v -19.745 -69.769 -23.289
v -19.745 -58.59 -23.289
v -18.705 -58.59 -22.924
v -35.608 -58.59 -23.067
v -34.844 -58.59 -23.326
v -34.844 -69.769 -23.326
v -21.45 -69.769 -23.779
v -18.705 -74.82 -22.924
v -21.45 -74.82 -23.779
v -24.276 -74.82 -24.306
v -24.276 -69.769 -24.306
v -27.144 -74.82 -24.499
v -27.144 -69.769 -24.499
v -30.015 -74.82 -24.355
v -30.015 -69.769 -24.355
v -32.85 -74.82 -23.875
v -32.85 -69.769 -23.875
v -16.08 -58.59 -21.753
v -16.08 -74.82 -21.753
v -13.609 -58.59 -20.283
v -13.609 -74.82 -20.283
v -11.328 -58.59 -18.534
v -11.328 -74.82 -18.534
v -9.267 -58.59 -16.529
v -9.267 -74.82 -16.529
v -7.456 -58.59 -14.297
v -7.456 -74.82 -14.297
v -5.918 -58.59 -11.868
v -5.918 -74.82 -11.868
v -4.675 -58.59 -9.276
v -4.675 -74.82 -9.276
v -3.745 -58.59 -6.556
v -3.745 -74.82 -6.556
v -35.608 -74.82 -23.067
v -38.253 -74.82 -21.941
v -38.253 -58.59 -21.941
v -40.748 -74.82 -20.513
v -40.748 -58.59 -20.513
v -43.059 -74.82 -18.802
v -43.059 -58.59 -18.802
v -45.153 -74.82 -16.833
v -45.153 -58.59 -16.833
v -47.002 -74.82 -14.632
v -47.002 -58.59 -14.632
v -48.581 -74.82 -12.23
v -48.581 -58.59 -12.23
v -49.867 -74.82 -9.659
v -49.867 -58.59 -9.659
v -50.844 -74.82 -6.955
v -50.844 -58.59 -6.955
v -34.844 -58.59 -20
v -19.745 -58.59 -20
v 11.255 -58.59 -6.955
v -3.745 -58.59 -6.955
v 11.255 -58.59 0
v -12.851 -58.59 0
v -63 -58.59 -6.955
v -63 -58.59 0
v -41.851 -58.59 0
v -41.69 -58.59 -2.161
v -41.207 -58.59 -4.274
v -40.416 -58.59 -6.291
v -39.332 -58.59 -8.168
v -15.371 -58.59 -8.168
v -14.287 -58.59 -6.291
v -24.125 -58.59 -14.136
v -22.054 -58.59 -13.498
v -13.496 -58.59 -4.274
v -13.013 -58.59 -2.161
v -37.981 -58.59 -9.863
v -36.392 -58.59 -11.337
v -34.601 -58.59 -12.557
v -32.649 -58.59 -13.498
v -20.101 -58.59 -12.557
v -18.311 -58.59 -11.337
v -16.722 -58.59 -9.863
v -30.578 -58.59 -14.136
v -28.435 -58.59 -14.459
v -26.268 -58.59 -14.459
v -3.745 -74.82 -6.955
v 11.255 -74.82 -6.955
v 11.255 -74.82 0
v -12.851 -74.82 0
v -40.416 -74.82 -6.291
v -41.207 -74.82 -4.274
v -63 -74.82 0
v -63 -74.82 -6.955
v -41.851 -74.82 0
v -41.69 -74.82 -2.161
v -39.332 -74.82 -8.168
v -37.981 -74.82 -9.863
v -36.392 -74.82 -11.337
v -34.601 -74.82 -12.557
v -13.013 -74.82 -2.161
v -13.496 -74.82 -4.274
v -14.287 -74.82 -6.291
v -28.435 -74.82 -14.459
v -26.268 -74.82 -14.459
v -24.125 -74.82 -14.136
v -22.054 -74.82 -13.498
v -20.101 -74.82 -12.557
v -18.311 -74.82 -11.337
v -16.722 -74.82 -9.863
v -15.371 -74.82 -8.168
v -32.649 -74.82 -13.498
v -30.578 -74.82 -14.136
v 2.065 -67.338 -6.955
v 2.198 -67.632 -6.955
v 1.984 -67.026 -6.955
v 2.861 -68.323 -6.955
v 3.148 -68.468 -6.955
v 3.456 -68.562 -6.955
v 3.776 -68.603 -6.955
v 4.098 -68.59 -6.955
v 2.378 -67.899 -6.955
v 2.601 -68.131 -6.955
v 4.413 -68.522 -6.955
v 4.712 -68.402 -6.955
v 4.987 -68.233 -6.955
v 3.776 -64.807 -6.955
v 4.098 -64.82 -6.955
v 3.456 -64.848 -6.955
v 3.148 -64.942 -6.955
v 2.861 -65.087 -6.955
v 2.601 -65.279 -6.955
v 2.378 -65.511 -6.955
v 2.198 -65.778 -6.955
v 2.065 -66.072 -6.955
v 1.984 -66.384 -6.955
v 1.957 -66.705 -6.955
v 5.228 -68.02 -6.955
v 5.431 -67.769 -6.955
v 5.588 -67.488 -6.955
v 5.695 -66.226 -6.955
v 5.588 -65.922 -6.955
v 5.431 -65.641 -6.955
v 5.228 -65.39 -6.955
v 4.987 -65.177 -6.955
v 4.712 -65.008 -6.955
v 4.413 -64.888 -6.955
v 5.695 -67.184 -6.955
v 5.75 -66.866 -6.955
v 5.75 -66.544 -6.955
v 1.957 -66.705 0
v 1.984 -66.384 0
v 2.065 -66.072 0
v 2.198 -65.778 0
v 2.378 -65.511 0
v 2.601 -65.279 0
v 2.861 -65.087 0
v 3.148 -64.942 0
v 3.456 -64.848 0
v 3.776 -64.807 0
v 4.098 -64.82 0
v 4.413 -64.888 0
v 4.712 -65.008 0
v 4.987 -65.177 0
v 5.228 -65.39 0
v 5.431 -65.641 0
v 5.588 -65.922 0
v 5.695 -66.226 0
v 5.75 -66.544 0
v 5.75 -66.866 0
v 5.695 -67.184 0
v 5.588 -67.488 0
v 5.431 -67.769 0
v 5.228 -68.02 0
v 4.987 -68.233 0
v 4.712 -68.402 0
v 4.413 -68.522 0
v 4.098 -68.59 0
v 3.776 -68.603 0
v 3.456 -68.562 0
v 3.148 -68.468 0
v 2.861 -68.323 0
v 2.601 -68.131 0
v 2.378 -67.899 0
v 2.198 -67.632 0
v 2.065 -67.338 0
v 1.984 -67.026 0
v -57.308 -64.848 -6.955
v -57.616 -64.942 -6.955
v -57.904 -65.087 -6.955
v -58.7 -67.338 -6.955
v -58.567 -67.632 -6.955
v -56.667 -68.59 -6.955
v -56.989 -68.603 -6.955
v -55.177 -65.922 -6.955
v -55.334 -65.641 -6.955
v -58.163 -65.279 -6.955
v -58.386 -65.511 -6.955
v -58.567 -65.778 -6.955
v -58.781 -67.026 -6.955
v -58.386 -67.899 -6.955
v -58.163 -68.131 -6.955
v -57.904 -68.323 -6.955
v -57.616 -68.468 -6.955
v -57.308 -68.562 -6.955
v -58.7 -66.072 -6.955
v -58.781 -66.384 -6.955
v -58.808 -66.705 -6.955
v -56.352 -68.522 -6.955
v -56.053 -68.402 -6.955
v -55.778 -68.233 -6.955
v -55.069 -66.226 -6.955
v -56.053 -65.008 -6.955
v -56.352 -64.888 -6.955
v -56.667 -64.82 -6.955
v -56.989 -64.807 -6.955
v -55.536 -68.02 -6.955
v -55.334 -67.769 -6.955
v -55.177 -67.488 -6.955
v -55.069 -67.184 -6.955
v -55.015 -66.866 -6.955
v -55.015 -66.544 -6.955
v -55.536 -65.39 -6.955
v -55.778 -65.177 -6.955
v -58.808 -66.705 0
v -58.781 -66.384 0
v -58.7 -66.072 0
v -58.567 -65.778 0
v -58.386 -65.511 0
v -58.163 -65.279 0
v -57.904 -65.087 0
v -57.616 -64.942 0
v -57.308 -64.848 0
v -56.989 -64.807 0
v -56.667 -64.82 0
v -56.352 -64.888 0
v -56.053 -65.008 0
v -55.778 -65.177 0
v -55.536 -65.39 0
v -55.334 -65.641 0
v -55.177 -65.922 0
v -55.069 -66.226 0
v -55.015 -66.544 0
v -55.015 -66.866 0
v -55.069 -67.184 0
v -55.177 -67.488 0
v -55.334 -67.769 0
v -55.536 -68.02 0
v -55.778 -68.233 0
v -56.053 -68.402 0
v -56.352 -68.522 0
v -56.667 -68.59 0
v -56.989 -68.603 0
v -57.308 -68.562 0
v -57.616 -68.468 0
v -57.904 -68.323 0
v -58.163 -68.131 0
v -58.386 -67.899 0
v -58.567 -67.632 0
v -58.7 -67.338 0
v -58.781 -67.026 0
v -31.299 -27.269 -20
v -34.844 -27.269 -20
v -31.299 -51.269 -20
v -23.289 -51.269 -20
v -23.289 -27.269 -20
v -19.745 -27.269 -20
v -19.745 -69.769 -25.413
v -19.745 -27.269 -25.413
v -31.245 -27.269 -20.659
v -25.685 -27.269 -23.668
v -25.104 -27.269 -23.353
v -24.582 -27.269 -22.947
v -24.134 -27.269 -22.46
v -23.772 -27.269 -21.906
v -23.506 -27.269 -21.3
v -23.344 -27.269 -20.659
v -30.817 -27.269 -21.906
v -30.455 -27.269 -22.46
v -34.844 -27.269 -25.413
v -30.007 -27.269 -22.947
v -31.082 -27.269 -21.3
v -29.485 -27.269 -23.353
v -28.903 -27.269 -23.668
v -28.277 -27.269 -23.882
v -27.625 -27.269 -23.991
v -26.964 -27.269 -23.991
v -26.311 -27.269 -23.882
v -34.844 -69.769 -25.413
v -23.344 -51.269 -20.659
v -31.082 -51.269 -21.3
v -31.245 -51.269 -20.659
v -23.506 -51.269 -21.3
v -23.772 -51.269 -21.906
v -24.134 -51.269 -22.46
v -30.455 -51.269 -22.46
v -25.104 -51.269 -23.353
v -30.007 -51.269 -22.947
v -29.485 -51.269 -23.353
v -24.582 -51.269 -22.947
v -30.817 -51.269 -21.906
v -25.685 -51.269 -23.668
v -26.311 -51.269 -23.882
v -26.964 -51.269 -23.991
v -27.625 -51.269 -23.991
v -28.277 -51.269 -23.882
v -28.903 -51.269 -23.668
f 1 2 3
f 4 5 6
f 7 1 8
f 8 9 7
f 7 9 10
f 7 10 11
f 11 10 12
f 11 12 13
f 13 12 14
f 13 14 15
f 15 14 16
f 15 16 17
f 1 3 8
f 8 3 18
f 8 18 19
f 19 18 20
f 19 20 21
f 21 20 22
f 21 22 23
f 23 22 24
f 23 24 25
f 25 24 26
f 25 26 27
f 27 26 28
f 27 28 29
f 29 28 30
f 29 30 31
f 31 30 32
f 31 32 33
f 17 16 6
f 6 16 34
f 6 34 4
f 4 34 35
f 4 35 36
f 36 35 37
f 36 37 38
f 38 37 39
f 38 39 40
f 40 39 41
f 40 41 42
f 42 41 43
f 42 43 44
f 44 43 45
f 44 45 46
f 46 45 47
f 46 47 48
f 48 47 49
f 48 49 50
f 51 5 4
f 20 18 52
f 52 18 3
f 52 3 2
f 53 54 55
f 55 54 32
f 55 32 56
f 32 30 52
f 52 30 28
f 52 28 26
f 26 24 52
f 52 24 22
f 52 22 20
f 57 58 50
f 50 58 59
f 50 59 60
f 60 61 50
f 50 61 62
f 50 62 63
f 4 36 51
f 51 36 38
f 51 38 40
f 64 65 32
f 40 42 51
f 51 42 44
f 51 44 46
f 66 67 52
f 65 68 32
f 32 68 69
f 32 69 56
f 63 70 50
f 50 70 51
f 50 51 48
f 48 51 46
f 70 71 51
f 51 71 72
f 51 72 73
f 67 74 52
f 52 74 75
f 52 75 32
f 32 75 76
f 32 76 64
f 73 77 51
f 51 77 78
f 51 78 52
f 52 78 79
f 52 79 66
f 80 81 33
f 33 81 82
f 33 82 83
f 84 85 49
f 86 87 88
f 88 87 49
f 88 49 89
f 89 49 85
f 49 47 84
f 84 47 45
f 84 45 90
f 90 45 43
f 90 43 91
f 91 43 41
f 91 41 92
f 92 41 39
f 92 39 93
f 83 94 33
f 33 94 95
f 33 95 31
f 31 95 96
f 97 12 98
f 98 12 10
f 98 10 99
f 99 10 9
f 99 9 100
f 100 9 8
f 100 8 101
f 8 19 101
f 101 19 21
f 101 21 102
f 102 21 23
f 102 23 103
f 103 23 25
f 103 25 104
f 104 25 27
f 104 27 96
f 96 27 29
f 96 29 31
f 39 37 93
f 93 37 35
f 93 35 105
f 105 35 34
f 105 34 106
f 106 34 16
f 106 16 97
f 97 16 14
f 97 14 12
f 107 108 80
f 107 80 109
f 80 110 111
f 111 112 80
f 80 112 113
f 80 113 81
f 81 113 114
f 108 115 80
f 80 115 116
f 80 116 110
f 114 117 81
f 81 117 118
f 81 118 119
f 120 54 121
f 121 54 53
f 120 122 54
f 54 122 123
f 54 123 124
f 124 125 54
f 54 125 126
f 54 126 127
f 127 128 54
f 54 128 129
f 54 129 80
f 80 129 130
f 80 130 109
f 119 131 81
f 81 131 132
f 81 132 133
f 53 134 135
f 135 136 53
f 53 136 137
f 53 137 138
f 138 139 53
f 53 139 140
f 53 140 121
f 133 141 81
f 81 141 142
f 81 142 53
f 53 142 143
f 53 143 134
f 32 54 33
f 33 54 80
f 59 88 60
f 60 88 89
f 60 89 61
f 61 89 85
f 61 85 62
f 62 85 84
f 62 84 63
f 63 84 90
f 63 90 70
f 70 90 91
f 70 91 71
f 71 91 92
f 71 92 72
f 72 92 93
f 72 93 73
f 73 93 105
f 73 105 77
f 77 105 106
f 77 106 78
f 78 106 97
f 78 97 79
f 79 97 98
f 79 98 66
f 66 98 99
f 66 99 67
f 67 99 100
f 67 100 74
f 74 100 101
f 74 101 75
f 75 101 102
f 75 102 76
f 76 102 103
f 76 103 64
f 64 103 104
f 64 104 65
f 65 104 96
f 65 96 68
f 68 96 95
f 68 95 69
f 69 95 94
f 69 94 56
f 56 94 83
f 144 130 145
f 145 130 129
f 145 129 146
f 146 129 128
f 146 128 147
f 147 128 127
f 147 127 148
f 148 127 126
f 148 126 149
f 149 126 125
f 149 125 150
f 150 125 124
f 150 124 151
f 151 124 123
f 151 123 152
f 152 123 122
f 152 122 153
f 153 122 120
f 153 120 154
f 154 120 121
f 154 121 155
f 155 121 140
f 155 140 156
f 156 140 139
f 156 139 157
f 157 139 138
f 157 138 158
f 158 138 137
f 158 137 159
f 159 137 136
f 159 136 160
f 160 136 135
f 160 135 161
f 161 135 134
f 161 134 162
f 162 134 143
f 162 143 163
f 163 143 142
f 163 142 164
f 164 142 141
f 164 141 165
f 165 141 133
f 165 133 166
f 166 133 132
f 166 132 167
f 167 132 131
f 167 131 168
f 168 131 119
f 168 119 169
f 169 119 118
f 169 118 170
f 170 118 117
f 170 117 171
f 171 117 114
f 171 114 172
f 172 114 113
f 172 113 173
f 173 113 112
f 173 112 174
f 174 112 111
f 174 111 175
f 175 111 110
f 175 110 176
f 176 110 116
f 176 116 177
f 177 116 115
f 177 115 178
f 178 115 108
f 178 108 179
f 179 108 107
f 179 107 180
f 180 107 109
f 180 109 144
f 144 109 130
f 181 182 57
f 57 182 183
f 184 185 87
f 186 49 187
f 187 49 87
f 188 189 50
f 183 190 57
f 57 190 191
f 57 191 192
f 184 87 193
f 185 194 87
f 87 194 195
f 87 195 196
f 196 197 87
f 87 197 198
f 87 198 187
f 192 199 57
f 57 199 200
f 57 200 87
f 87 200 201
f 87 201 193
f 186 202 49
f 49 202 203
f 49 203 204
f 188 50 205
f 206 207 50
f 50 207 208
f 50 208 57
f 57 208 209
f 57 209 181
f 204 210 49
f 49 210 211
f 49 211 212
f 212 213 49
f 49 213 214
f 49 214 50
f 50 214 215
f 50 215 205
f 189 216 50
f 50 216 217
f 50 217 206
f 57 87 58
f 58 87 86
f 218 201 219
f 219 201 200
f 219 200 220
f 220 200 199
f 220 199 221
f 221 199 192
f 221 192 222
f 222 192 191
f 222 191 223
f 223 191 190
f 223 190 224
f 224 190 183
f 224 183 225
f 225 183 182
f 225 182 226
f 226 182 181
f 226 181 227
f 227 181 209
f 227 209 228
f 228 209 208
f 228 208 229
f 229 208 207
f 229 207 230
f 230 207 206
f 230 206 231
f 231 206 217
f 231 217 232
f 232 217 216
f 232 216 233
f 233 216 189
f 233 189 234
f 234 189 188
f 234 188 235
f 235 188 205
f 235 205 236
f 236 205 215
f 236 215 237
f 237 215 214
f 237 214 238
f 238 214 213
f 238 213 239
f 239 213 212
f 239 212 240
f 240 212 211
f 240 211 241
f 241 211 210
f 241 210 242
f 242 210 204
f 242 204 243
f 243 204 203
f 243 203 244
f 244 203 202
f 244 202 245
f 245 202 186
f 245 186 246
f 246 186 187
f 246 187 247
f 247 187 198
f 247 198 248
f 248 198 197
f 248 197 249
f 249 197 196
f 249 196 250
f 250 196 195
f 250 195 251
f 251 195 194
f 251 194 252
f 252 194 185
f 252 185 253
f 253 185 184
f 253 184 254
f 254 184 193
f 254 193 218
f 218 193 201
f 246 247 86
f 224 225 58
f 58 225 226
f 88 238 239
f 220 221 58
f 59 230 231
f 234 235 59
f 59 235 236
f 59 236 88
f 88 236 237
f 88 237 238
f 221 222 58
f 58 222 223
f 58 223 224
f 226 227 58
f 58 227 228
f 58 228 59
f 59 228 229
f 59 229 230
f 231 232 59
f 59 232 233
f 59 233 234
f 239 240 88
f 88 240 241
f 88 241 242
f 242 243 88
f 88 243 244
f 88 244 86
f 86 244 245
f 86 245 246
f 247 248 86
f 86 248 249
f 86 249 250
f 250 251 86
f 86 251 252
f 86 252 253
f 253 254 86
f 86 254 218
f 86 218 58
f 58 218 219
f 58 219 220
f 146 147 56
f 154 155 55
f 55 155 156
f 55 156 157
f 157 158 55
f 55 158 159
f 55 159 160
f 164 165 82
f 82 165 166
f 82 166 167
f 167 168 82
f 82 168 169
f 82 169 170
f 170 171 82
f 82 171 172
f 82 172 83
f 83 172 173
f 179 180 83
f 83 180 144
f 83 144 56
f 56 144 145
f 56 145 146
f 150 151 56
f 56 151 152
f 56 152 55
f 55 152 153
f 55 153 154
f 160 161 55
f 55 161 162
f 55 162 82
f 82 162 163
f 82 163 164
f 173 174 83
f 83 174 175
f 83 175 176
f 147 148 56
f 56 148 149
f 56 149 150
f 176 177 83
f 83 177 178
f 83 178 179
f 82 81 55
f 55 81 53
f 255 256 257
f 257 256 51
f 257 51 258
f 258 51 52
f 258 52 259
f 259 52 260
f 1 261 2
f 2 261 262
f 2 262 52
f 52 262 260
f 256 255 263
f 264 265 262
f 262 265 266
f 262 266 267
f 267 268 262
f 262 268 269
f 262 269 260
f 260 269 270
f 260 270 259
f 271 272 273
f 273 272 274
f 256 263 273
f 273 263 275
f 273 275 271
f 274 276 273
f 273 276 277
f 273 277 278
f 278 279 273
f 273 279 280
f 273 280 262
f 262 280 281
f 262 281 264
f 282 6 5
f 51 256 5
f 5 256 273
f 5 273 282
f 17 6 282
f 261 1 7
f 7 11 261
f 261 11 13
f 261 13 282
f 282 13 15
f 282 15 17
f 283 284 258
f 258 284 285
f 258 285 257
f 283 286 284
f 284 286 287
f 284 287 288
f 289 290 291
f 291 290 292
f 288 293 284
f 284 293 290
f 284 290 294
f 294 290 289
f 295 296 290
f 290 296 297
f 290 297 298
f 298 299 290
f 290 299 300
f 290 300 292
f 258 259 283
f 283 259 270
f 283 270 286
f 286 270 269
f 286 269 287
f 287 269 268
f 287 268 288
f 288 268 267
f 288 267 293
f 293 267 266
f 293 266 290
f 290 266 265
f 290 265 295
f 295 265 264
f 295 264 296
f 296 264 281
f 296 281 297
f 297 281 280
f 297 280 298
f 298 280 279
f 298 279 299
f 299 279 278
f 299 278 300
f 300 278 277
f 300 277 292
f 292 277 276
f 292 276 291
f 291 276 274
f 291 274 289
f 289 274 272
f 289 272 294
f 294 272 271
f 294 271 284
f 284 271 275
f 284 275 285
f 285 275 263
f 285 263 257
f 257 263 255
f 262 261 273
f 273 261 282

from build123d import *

# Parameters (mm, degrees)
SKETCH_1_W                = 48.51
SKETCH_1_H                = 34
SKETCH_1_W_2              = 28.51
SKETCH_1_H_2              = 14
EXTRUDE_1_DEPTH           = 12.25
SKETCH_2_R                = 1.91
CUT_EXTRUDE_1_DEPTH       = 33.05257439
SKETCH_4_W                = 13
SKETCH_4_H                = 13.91
EXTRUDE_1_2_DEPTH         = 74.82
SKETCH_5_W                = 13.91
SKETCH_5_H                = 16.23
EXTRUDE_2_DEPTH           = 15
SKETCH_7_R                = 24.5
SKETCH_7_R_2              = 14.5
EXTRUDE_2_2_DEPTH         = 16.23
SKETCH_12_R               = 1.9
CUT_EXTRUDE_4_DEPTH       = 97.312124675
EXTRUDE_3_DEPTH           = 10
EXTRUDE_3_DEPTH_BACK      = 8
SKETCH_13_W               = 13.91
SKETCH_13_H               = 16.23
SKETCH_14_R               = 1.9
CUT_EXTRUDE_5_DEPTH       = 103.744583434
SKETCH_16_W               = 90.709398763
SKETCH_16_H               = 28.955068616
CUT_EXTRUDE_7_DEPTH       = 111.229011154
SKETCH_18_W               = 13
SKETCH_18_H               = 93.080932143
CUT_EXTRUDE_10_DEPTH      = 27
CUT_EXTRUDE_11_DEPTH      = 57
CUT_EXTRUDE_11_DEPTH_BACK = 27
SKETCH_17_W               = 20.23049449
SKETCH_17_H               = 80.723570055
SKETCH_21_W               = 15.09856282
SKETCH_21_H               = 42.5
EXTRUDE_6_DEPTH           = 10
SKETCH_22_R               = 4.005
CUT_EXTRUDE_12_DEPTH      = 24
SKETCH_23_W               = 15.09856282
SKETCH_23_H               = 4.587452919
CUT_EXTRUDE_13_DEPTH      = 85.439664289


with BuildPart() as part:
    # 草圖1 → Extrude 1 (new body)
    with BuildSketch(Plane(origin=(0, 0, 0), x_dir=(1, 0, 0), z_dir=(0, 1, 0))):
        Rectangle(SKETCH_1_W, SKETCH_1_H)
        Rectangle(SKETCH_1_W_2, SKETCH_1_H_2, mode=Mode.SUBTRACT)
    extrude(amount=EXTRUDE_1_DEPTH)

    # 草圖2 → 除料-伸長1 (cut, through all)
    with BuildSketch(Plane(origin=(0, 12.25, 0), x_dir=(1, 0, 0), z_dir=(0, 1, 0))):
        with Locations(Location((-19.255, 0, 0), (0, 0, 270))):
            Circle(SKETCH_2_R)
        with Locations(Location((19.255, 0, 0), (0, 0, 270))):
            Circle(SKETCH_2_R)
    extrude(amount=-CUT_EXTRUDE_1_DEPTH, mode=Mode.SUBTRACT)

    # 草圖4 → Extrude 1 2 (add)
    with BuildSketch(Plane.XZ):
        with Locations((17.755, 0)):
            Rectangle(SKETCH_4_W, SKETCH_4_H)
    extrude(amount=EXTRUDE_1_2_DEPTH)

    # 草圖5 → Extrude 2 (add)
    with BuildSketch(Plane.ZY.offset(-11.255)):
        with Locations((0, -66.705)):
            Rectangle(SKETCH_5_W, SKETCH_5_H)
    extrude(amount=EXTRUDE_2_DEPTH)

    # 草圖7 → Extrude 2 2 (add)
    with BuildSketch(Plane(origin=(3.626674765, -74.82, 0), x_dir=(1, 0, 0), z_dir=(0, -1, 0))):
        with Locations((-30.978154344, 0)):
            Circle(SKETCH_7_R)
        with Locations((-30.978154344, 0)):
            Circle(SKETCH_7_R_2, mode=Mode.SUBTRACT)
    extrude(amount=-EXTRUDE_2_2_DEPTH)

    # 草圖12 → 除料-伸長4 (cut, through all)
    with BuildSketch(Plane(origin=(0, 0, -6.955), x_dir=(-1, 0, 0), z_dir=(0, 0, -1))):
        with Locations((-3.856713649, -66.705)):
            Circle(SKETCH_12_R)
    extrude(amount=-CUT_EXTRUDE_4_DEPTH, mode=Mode.SUBTRACT)

    # 草圖13 → 填料-伸長3 (add, two sides: drawn at the far end of the back side and taken through both)
    with BuildSketch(Plane(origin=(-55, 0, 0), x_dir=(0, 0, -1), z_dir=(1, 0, 0)).offset(-EXTRUDE_3_DEPTH_BACK)):
        with Locations((0, -66.705)):
            Rectangle(SKETCH_13_W, SKETCH_13_H)
    extrude(amount=EXTRUDE_3_DEPTH + EXTRUDE_3_DEPTH_BACK)

    # 草圖14 → 除料-伸長5 (cut, through all)
    with BuildSketch(Plane(origin=(0, 0, -6.955), x_dir=(-1, 0, 0), z_dir=(0, 0, -1))):
        with Locations((56.908040017, -66.705)):
            Circle(SKETCH_14_R)
    extrude(amount=-CUT_EXTRUDE_5_DEPTH, mode=Mode.SUBTRACT)

    # 草圖16 → 除料-伸長7 (cut, through all)
    with BuildSketch(Plane(origin=(0, 12.25, 0), x_dir=(1, 0, 0), z_dir=(0, 1, 0))):
        with Locations((-17.645300619, -14.477534308)):
            Rectangle(SKETCH_16_W, SKETCH_16_H)
    extrude(amount=-CUT_EXTRUDE_7_DEPTH, mode=Mode.SUBTRACT)

    # 草圖18 → 除料-伸長10 (cut)
    with BuildSketch(Plane.XY):
        with Locations((17.755, -28.279533929)):
            Rectangle(SKETCH_18_W, SKETCH_18_H)
    extrude(amount=-CUT_EXTRUDE_10_DEPTH, mode=Mode.SUBTRACT)


with BuildPart() as cut_extrude_10_piece_1:
    # of the separate pieces the step leaves, piece 1, a body of its own (cut_extrude_10_pieces)
    add(part.part.solids().sort_by_distance((11.255, -58.59, -6.955))[0])

    # 草圖21 → 填料-伸長6 (add)
    with BuildSketch(Plane.XY.offset(-30)):
        with Locations((-27.29428141, -48.519427919)):
            Rectangle(SKETCH_21_W, SKETCH_21_H)
    extrude(amount=EXTRUDE_6_DEPTH)

    # 草圖22 → 除料-伸長12 (cut)
    with BuildSketch(Plane(origin=(0, -27.269427919, 0), x_dir=(1, 0, 0), z_dir=(0, 1, 0))):
        with Locations((-27.29428141, 20)):
            Circle(SKETCH_22_R)
    extrude(amount=-CUT_EXTRUDE_12_DEPTH, mode=Mode.SUBTRACT)

    # 草圖23 → 除料-伸長13 (cut, through all)
    with BuildSketch(Plane(origin=(0, -27.269427919, 0), x_dir=(1, 0, 0), z_dir=(0, 1, 0))):
        with Locations((-27.29428141, 27.706273541)):
            Rectangle(SKETCH_23_W, SKETCH_23_H)
    extrude(amount=-CUT_EXTRUDE_13_DEPTH, mode=Mode.SUBTRACT)


with BuildPart() as cut_extrude_10_piece_2:
    # of the separate pieces the step leaves, piece 2, a body of its own (cut_extrude_10_pieces)
    add(part.part.solids().sort_by_distance((-17.345, 0, 0))[0])

    # 草圖17 → 除料-伸長11 (cut, two sides: drawn at the far end of the back side and taken through both)
    with BuildSketch(Plane.ZY.offset(-11.255).offset(-CUT_EXTRUDE_11_DEPTH_BACK)):
        with Locations((-10.115247245, -18.228214973)):
            Rectangle(SKETCH_17_W, SKETCH_17_H)
    extrude(amount=CUT_EXTRUDE_11_DEPTH + CUT_EXTRUDE_11_DEPTH_BACK, mode=Mode.SUBTRACT)


solid = cut_extrude_10_piece_1.part
